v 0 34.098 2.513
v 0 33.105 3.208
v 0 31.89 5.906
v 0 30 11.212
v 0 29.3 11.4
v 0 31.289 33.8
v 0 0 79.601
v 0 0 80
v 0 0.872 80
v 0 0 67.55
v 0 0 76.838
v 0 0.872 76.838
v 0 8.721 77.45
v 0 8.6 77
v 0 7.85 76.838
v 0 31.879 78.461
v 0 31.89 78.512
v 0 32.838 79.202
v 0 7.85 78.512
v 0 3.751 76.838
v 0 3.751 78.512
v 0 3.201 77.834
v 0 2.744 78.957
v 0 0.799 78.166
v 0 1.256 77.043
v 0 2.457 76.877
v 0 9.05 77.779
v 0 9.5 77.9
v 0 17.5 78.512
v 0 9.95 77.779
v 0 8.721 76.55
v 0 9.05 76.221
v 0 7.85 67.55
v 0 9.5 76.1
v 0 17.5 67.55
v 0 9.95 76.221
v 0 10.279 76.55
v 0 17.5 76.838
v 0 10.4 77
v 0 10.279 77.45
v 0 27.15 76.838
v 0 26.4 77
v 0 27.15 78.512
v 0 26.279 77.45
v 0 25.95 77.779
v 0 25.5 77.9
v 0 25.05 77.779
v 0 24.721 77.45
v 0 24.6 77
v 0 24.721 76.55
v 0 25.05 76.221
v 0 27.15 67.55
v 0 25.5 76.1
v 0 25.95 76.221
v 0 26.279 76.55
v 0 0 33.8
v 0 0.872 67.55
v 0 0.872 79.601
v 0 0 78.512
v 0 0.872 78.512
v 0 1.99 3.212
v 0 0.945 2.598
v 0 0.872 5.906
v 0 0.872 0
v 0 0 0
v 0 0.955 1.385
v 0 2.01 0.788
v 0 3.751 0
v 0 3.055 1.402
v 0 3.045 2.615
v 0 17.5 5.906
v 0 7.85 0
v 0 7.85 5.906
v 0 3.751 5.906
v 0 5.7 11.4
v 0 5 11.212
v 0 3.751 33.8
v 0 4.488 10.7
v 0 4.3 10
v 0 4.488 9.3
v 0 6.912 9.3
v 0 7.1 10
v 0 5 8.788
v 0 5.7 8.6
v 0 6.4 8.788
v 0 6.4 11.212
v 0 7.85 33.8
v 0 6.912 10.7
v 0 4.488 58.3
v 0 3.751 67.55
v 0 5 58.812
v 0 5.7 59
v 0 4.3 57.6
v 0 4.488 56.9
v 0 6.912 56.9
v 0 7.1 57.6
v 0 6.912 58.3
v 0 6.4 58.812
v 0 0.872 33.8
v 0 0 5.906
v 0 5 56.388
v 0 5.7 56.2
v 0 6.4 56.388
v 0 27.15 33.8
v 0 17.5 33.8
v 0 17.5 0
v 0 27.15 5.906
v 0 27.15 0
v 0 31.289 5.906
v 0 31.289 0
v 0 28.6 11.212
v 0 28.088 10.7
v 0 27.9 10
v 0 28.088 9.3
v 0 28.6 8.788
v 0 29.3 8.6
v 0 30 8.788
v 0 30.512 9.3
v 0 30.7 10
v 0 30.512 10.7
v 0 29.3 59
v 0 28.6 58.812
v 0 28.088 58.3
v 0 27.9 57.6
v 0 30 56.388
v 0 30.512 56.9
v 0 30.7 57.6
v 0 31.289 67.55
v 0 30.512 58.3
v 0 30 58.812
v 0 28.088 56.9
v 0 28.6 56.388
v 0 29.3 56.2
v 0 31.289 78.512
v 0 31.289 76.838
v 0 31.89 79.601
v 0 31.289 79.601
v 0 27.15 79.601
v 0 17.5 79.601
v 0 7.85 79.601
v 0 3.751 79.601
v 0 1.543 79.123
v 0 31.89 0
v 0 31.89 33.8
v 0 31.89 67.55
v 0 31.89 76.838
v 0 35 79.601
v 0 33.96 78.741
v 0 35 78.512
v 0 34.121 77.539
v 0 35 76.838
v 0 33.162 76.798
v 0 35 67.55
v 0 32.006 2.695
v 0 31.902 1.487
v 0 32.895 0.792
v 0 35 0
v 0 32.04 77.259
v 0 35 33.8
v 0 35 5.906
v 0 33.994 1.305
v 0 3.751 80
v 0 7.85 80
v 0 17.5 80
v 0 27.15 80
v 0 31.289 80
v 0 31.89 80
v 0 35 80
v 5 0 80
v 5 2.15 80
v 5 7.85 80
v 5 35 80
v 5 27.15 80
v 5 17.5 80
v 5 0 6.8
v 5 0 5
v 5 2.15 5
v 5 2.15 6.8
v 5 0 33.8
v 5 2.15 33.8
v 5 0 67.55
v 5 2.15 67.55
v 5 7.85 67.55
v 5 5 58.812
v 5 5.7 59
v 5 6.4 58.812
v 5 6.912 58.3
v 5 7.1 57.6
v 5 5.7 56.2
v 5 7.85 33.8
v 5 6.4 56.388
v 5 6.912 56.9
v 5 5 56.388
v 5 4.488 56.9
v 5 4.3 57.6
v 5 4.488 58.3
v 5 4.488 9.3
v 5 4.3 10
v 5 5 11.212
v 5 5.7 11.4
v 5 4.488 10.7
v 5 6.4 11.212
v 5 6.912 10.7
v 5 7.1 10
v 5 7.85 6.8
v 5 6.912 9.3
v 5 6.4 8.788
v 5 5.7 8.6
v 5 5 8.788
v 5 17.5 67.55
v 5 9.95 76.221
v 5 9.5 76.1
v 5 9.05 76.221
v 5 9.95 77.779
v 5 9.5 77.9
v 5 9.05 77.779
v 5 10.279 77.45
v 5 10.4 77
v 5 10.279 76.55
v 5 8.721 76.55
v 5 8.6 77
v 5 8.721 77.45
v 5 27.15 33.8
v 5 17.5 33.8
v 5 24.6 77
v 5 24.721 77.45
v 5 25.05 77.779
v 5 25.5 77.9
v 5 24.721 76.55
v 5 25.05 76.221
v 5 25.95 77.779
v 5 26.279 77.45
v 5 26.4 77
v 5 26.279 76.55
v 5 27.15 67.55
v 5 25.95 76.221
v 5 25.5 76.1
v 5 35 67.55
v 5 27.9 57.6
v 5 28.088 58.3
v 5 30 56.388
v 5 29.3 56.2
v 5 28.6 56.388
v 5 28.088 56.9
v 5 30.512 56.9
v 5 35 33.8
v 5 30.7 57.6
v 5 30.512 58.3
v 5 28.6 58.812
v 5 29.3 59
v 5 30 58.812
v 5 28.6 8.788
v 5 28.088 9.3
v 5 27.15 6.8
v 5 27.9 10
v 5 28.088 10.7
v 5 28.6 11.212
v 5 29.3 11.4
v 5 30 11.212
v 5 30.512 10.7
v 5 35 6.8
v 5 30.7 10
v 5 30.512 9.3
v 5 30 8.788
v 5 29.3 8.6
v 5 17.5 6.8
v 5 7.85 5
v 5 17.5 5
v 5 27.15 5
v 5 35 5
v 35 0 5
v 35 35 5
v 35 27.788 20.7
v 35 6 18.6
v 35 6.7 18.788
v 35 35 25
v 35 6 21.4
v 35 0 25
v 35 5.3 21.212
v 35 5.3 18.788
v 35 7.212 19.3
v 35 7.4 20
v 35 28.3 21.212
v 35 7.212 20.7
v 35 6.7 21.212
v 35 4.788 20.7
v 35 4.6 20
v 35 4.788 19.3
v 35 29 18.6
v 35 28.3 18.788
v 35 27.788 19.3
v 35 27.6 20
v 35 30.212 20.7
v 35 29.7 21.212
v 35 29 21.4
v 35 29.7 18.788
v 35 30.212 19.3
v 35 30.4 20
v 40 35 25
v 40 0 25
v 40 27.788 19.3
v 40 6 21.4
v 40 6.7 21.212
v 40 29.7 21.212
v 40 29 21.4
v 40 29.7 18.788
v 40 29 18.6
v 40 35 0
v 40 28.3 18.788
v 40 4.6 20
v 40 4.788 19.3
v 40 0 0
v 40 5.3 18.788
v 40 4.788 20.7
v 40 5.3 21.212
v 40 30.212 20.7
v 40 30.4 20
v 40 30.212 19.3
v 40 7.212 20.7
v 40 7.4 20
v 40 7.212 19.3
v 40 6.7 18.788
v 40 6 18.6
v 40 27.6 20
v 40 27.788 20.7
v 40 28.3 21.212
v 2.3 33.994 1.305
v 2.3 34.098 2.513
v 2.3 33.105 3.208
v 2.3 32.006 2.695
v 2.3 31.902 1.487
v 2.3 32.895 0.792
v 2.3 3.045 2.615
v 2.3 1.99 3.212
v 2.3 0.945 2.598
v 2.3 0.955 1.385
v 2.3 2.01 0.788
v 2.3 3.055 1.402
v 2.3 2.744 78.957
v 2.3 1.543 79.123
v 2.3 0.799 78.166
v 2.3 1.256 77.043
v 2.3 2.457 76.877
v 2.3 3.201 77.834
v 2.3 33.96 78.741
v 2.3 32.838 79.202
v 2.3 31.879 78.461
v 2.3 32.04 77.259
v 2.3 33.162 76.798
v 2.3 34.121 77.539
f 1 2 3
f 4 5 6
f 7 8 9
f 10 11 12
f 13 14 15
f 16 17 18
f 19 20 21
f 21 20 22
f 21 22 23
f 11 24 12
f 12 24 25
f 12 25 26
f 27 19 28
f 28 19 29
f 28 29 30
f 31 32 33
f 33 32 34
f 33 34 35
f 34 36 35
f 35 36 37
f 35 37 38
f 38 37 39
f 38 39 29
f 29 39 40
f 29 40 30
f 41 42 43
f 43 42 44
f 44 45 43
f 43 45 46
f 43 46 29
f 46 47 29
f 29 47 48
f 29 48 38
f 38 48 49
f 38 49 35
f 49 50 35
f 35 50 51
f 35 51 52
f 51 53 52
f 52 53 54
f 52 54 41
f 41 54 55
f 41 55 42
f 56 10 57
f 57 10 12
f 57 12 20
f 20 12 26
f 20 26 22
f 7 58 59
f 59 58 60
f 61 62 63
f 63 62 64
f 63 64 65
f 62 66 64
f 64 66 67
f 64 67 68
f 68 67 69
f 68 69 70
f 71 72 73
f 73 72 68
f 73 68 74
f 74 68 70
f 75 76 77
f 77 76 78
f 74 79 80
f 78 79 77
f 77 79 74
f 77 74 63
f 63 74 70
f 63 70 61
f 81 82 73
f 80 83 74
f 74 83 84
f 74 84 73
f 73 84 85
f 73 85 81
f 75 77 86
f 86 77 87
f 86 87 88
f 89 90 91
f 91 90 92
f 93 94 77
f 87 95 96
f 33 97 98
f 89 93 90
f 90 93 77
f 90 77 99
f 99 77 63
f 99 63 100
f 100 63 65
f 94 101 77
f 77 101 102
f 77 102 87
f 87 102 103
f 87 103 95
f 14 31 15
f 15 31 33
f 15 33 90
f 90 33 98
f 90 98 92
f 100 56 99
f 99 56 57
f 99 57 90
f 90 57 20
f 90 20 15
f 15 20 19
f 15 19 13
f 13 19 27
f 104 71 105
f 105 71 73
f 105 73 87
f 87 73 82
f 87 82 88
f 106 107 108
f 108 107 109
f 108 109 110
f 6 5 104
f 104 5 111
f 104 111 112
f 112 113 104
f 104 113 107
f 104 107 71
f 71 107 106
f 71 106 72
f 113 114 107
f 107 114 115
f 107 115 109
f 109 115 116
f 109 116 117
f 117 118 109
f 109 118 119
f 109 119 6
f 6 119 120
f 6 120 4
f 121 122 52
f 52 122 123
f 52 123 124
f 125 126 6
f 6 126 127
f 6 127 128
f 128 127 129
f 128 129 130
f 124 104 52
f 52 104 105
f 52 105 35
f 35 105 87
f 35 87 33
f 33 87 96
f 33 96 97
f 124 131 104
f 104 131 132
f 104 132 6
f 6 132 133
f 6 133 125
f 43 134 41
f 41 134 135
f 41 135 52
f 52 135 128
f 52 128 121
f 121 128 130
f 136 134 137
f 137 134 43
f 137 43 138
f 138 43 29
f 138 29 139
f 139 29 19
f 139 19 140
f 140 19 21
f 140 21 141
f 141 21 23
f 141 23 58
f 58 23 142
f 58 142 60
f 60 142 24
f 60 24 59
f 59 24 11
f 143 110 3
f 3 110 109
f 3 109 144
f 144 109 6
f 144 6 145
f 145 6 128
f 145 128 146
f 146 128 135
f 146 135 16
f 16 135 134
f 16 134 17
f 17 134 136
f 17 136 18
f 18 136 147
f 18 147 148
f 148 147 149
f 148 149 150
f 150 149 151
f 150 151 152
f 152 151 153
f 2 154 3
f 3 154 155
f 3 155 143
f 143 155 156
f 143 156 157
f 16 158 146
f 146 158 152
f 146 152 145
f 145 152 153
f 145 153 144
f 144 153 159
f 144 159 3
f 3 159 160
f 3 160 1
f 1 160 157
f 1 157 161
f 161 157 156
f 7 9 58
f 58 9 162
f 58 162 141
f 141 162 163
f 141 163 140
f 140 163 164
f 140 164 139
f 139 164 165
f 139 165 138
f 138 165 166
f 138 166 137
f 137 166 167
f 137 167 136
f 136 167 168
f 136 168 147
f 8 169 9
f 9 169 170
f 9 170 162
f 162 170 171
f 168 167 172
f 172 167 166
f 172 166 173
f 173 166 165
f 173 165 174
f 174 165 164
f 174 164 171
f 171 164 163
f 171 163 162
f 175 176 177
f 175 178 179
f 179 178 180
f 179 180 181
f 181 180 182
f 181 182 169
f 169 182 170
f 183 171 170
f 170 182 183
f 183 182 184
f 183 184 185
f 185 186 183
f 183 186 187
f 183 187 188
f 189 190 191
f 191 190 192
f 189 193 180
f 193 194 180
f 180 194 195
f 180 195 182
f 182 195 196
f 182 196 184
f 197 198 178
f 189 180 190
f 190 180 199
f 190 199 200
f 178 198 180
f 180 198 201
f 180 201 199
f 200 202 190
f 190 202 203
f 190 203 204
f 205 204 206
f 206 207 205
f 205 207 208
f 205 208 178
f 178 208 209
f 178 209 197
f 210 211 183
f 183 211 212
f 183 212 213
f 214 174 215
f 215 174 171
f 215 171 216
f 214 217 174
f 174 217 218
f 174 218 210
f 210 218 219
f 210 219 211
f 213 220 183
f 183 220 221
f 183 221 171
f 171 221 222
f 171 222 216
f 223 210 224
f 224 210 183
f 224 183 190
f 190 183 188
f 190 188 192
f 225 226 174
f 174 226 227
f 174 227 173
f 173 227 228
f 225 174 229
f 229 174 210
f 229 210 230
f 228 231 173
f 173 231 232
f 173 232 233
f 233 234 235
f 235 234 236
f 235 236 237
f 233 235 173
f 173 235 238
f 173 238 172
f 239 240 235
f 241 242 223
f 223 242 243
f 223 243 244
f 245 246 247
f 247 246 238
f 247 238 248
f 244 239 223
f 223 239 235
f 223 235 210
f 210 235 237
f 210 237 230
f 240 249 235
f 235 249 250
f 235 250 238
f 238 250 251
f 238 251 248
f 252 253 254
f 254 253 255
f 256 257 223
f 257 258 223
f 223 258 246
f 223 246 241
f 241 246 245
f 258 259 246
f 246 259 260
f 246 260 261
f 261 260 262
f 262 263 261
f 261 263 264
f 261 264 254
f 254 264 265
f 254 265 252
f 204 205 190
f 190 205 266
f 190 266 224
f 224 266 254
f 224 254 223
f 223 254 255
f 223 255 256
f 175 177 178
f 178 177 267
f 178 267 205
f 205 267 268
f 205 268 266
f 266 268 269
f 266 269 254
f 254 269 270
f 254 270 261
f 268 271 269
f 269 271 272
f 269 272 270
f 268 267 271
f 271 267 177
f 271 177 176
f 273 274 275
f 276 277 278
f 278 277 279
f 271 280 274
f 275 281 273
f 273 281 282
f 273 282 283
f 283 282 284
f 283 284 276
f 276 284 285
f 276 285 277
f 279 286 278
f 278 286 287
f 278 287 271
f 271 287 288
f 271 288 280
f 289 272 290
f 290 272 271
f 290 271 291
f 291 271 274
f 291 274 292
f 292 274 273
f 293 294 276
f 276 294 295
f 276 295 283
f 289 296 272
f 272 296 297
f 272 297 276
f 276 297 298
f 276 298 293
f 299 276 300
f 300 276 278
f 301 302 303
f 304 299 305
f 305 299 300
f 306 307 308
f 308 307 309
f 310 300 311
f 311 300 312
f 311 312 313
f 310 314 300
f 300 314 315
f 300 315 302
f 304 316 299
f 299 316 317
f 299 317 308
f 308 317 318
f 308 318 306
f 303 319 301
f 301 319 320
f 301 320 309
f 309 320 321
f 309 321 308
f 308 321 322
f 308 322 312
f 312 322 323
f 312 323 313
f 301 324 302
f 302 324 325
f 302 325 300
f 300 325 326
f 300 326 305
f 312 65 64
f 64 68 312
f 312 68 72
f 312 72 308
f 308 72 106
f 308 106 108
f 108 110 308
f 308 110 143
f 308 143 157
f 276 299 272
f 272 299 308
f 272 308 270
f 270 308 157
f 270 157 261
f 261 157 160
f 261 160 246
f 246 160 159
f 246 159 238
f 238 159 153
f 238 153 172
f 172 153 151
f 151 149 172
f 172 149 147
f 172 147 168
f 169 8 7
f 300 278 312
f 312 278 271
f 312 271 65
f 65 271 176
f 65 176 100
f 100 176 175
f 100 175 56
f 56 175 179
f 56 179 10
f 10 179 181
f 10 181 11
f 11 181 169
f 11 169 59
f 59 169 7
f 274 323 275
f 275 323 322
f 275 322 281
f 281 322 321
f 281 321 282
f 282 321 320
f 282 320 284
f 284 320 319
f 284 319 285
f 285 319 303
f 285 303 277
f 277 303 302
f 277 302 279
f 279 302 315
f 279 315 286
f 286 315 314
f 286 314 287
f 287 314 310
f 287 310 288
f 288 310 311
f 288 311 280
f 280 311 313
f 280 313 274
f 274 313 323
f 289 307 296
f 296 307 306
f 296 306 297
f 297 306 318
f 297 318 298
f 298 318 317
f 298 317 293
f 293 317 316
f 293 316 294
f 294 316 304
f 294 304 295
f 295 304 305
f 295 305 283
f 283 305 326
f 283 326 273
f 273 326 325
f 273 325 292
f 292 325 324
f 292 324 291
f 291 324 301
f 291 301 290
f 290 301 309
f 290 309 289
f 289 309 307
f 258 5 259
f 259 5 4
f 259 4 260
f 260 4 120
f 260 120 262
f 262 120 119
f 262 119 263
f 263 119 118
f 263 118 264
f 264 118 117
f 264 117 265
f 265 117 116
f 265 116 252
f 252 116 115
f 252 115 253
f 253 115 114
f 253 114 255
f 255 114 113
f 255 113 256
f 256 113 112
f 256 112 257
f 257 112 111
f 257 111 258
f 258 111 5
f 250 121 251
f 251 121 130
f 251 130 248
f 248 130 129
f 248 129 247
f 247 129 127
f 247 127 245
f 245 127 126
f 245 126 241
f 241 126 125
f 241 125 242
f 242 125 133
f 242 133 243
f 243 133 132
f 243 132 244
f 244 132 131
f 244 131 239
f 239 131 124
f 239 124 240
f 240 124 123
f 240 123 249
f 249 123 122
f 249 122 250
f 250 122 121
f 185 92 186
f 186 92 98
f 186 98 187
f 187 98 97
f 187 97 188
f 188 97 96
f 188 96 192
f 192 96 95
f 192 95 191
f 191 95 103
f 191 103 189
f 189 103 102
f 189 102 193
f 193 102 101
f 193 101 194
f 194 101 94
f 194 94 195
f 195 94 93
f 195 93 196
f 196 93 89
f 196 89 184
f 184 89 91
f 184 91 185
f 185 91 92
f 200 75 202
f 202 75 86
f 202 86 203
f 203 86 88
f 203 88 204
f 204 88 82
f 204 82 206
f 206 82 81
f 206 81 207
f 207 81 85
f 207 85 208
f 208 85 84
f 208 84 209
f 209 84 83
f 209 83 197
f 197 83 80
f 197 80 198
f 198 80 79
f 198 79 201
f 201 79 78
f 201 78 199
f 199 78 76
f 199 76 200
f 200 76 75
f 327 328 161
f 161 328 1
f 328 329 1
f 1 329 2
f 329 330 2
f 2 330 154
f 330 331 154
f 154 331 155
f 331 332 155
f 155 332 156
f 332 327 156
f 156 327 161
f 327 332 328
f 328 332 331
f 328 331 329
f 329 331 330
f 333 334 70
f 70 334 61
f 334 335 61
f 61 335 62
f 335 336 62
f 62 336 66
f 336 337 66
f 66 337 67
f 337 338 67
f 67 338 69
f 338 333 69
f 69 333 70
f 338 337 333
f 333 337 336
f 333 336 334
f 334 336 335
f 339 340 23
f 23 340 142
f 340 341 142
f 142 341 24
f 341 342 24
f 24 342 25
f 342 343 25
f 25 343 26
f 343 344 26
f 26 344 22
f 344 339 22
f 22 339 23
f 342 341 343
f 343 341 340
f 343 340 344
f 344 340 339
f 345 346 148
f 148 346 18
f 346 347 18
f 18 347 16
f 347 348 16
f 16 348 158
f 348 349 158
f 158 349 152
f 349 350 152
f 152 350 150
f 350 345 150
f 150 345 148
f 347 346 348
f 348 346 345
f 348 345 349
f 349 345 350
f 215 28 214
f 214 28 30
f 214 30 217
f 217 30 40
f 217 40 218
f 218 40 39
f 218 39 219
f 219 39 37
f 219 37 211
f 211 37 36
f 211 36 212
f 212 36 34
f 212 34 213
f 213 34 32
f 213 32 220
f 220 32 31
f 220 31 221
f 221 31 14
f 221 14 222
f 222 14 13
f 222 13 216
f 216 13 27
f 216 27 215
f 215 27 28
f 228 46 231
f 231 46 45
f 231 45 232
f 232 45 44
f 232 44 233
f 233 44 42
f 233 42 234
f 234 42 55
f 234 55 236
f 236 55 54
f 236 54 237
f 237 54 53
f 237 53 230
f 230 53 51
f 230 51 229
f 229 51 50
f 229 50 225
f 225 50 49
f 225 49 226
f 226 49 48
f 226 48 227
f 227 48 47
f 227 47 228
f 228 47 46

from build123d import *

# Parameters (mm, degrees)
BOSS_EXTRUDE1_DEPTH = 35
SKETCH3_R           = 1.4
CUT_EXTRUDE1_DEPTH  = 5
SKETCH4_R           = 1.4
CUT_EXTRUDE2_DEPTH  = 5
CUT_EXTRUDE3_DEPTH  = 2.3
SKETCH6_R           = 0.9
CUT_EXTRUDE4_DEPTH  = 5


with BuildPart() as part:
    # Sketch1 → Boss-Extrude1 (new body)
    with BuildSketch(Plane(origin=(0, 0, 0), x_dir=(1, 0, 0), z_dir=(0, 1, 0))):
        Polygon((0, 0), (5, 0), (40, 0), (40, -5), (40, -25), (35, -25), (35, -5), (5, -5), (5, -80), (0, -80), align=None)
    extrude(amount=BOSS_EXTRUDE1_DEPTH)

    # Sketch3 → Cut-Extrude1 (cut)
    with BuildSketch(Plane(origin=(40, 0, 0), x_dir=(0, 0, -1), z_dir=(1, 0, 0))):
        with Locations((-20, 29)):
            Circle(SKETCH3_R)
        with Locations((-20, 6)):
            Circle(SKETCH3_R)
    extrude(amount=-CUT_EXTRUDE1_DEPTH, mode=Mode.SUBTRACT)

    # Sketch4 → Cut-Extrude2 (cut)
    with BuildSketch(Plane.ZY):
        with Locations((10, 29.3)):
            Circle(SKETCH4_R)
        with Locations((57.6, 29.3)):
            Circle(SKETCH4_R)
        with Locations((57.6, 5.7)):
            Circle(SKETCH4_R)
        with Locations((10, 5.7)):
            Circle(SKETCH4_R)
    extrude(amount=-CUT_EXTRUDE2_DEPTH, mode=Mode.SUBTRACT)

    # Sketch5 → Cut-Extrude3 (cut)
    with BuildSketch(Plane.ZY):
        Polygon((1.305296416, 33.993673453), (0.792101755, 32.895205775), (1.486805338, 31.901532322), (2.694703584, 32.006326547), (3.207898245, 33.104794225), (2.513194662, 34.098467678), align=None)
        Polygon((2.614505204, 3.045171447), (1.402107578, 3.054762841), (0.787602373, 2.009591394), (1.385494796, 0.954828553), (2.597892422, 0.945237159), (3.212397627, 1.990408606), align=None)
        Polygon((78.957273376, 2.744061612), (77.83426043, 3.201053868), (76.876987054, 2.456992256), (77.042726624, 1.255938388), (78.16573957, 0.798946132), (79.123012946, 1.543007744), align=None)
        Polygon((78.740718882, 33.959862249), (77.539094349, 34.121412494), (76.798375467, 33.161550244), (77.259281118, 32.040137751), (78.460905651, 31.878587506), (79.201624533, 32.838449756), align=None)
    extrude(amount=-CUT_EXTRUDE3_DEPTH, mode=Mode.SUBTRACT)

    # Sketch6 → Cut-Extrude4 (cut)
    with BuildSketch(Plane.ZY):
        with Locations((77, 25.5)):
            Circle(SKETCH6_R)
        with Locations((77, 9.5)):
            Circle(SKETCH6_R)
    extrude(amount=-CUT_EXTRUDE4_DEPTH, mode=Mode.SUBTRACT)


solid = part.part
